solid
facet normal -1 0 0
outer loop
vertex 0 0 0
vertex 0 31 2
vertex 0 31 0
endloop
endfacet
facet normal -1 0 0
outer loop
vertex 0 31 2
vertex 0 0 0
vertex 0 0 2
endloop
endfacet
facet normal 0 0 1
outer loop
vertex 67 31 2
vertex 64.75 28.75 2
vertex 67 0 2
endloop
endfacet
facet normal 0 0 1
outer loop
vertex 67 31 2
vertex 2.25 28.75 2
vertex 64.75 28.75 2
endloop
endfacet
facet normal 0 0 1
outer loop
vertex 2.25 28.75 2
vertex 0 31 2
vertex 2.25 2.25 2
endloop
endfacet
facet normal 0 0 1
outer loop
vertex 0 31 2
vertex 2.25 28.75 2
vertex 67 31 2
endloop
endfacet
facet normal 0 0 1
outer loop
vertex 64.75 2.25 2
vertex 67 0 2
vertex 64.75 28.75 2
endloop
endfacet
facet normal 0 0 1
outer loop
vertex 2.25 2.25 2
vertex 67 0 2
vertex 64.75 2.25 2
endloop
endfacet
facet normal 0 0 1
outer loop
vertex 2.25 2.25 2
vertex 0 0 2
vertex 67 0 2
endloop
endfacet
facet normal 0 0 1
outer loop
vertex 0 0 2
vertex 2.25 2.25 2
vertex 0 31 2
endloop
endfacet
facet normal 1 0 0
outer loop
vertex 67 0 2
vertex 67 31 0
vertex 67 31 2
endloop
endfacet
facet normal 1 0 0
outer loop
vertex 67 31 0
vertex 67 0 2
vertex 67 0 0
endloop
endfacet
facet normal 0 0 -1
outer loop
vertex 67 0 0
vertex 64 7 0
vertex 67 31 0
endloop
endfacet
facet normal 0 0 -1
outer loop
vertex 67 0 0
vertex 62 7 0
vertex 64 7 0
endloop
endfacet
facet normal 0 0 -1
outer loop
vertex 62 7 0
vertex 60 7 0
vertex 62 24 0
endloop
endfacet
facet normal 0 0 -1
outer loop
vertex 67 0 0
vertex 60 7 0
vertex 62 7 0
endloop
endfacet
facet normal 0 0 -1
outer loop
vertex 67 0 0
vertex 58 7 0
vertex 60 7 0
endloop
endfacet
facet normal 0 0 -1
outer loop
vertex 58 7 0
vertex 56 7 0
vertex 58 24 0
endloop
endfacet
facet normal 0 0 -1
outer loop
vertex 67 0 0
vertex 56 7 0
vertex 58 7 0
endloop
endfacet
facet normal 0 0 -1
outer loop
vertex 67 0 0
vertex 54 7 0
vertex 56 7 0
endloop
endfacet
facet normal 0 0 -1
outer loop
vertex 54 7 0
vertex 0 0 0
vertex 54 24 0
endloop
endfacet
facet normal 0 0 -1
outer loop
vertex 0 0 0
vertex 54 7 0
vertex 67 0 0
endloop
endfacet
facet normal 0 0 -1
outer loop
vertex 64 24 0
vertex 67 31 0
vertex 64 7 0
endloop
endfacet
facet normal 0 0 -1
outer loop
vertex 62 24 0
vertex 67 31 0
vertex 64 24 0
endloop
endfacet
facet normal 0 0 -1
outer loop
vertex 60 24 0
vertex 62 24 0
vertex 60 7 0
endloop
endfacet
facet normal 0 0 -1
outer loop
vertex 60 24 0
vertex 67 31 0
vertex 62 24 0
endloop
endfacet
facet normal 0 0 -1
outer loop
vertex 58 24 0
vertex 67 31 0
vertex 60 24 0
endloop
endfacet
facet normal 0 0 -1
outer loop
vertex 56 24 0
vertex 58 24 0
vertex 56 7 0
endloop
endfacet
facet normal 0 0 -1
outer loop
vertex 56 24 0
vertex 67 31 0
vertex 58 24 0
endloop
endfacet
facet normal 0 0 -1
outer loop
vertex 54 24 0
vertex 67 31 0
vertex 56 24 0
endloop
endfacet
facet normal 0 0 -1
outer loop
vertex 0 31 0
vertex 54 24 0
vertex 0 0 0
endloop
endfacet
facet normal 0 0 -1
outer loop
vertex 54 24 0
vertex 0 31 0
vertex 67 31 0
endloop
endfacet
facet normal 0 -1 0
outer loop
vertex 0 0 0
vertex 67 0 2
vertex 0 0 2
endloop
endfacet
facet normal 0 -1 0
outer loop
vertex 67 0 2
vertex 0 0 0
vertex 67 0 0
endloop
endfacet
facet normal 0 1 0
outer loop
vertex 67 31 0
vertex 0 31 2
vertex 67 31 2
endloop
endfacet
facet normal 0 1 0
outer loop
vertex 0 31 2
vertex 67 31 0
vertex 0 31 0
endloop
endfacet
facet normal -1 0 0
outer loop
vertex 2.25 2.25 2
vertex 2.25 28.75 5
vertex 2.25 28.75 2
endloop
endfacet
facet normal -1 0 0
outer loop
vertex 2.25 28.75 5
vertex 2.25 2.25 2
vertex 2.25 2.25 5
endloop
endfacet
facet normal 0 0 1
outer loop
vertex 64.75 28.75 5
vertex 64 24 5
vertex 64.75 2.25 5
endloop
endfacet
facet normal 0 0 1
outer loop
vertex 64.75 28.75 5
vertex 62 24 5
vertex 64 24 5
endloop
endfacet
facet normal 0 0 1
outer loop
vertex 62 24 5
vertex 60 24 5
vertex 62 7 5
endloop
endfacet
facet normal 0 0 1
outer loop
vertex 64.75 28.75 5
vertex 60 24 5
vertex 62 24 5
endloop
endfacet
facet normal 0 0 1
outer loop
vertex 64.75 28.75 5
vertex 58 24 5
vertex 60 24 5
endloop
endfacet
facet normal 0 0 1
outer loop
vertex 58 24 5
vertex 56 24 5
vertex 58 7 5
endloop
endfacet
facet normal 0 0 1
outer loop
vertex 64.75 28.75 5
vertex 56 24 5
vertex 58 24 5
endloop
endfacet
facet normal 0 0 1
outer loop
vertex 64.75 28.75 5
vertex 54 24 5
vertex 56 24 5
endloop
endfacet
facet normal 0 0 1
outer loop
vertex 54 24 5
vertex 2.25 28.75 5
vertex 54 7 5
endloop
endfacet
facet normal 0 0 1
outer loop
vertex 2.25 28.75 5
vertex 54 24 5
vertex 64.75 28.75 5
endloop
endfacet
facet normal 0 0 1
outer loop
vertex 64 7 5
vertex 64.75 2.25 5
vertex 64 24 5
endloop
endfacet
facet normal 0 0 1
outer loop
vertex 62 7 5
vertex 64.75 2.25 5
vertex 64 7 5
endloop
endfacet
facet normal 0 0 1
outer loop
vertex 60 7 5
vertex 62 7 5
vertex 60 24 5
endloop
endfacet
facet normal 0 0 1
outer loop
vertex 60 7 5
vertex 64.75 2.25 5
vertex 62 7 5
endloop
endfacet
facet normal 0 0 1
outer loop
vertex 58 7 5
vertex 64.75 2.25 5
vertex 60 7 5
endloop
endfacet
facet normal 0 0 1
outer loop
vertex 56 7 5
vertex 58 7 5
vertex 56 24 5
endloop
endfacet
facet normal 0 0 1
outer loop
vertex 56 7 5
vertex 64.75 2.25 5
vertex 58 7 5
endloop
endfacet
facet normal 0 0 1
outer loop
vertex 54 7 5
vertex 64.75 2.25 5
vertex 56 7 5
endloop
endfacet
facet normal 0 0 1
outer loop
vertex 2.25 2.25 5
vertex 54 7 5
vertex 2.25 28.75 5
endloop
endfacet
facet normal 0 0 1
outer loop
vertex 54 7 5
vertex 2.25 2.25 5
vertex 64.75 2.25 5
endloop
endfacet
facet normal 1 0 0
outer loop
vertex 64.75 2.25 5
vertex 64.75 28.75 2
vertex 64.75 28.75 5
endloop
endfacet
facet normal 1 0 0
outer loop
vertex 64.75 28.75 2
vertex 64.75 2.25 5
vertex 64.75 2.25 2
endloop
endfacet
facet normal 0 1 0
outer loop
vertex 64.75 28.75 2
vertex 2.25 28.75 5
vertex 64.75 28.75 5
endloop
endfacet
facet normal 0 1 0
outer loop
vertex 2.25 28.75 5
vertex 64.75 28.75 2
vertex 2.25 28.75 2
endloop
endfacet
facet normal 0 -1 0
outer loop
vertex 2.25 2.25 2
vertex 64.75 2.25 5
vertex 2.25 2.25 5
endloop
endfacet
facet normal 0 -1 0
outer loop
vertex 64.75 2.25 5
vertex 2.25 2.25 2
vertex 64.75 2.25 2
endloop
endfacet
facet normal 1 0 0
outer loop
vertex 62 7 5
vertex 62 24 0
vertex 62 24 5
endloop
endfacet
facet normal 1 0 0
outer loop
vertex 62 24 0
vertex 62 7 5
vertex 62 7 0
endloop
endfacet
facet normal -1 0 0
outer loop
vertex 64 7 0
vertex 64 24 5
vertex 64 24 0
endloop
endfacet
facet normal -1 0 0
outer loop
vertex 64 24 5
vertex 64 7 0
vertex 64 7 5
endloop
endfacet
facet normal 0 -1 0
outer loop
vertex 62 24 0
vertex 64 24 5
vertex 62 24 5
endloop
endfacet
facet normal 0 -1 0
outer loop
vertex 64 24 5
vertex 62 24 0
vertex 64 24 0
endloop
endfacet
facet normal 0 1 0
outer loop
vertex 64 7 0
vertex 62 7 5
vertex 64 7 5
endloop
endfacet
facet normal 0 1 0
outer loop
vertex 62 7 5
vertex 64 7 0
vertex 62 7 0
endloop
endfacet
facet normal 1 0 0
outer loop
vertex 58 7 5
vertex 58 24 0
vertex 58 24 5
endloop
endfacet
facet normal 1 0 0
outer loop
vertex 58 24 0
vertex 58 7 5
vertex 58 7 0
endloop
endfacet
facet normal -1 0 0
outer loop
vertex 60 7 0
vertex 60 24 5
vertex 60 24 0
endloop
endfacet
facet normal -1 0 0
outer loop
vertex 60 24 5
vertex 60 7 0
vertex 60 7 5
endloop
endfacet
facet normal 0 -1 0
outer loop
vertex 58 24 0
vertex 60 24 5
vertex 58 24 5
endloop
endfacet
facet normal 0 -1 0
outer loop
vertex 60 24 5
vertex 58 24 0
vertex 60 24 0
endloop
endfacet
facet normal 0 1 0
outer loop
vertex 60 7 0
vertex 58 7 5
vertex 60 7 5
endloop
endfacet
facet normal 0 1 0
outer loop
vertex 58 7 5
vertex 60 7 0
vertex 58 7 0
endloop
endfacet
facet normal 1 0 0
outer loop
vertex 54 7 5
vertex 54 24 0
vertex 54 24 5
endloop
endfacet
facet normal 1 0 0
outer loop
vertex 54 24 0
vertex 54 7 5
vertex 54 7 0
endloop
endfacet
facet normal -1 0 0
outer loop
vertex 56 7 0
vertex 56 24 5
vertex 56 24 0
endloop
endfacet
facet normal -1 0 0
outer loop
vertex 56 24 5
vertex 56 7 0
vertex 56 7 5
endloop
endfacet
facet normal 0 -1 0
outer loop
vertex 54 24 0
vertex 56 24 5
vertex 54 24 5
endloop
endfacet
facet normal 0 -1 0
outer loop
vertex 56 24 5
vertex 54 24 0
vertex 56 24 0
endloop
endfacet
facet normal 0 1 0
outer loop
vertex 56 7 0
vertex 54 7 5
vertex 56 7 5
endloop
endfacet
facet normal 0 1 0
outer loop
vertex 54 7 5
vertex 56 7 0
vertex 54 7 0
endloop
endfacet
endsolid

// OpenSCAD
$fn=50;

// ESP8266   49mm x 26mm x 14mm

difference() {
	union() {
		//Korpus
		cube([67,31,2]);
		translate([2.25,2.25,2]) cube([62.5,26.5,3]);
	}
	translate([62,7,0]) cube([2,17,6]);
	translate([58,7,0]) cube([2,17,6]);
	translate([54,7,0]) cube([2,17,6]);

}
	
